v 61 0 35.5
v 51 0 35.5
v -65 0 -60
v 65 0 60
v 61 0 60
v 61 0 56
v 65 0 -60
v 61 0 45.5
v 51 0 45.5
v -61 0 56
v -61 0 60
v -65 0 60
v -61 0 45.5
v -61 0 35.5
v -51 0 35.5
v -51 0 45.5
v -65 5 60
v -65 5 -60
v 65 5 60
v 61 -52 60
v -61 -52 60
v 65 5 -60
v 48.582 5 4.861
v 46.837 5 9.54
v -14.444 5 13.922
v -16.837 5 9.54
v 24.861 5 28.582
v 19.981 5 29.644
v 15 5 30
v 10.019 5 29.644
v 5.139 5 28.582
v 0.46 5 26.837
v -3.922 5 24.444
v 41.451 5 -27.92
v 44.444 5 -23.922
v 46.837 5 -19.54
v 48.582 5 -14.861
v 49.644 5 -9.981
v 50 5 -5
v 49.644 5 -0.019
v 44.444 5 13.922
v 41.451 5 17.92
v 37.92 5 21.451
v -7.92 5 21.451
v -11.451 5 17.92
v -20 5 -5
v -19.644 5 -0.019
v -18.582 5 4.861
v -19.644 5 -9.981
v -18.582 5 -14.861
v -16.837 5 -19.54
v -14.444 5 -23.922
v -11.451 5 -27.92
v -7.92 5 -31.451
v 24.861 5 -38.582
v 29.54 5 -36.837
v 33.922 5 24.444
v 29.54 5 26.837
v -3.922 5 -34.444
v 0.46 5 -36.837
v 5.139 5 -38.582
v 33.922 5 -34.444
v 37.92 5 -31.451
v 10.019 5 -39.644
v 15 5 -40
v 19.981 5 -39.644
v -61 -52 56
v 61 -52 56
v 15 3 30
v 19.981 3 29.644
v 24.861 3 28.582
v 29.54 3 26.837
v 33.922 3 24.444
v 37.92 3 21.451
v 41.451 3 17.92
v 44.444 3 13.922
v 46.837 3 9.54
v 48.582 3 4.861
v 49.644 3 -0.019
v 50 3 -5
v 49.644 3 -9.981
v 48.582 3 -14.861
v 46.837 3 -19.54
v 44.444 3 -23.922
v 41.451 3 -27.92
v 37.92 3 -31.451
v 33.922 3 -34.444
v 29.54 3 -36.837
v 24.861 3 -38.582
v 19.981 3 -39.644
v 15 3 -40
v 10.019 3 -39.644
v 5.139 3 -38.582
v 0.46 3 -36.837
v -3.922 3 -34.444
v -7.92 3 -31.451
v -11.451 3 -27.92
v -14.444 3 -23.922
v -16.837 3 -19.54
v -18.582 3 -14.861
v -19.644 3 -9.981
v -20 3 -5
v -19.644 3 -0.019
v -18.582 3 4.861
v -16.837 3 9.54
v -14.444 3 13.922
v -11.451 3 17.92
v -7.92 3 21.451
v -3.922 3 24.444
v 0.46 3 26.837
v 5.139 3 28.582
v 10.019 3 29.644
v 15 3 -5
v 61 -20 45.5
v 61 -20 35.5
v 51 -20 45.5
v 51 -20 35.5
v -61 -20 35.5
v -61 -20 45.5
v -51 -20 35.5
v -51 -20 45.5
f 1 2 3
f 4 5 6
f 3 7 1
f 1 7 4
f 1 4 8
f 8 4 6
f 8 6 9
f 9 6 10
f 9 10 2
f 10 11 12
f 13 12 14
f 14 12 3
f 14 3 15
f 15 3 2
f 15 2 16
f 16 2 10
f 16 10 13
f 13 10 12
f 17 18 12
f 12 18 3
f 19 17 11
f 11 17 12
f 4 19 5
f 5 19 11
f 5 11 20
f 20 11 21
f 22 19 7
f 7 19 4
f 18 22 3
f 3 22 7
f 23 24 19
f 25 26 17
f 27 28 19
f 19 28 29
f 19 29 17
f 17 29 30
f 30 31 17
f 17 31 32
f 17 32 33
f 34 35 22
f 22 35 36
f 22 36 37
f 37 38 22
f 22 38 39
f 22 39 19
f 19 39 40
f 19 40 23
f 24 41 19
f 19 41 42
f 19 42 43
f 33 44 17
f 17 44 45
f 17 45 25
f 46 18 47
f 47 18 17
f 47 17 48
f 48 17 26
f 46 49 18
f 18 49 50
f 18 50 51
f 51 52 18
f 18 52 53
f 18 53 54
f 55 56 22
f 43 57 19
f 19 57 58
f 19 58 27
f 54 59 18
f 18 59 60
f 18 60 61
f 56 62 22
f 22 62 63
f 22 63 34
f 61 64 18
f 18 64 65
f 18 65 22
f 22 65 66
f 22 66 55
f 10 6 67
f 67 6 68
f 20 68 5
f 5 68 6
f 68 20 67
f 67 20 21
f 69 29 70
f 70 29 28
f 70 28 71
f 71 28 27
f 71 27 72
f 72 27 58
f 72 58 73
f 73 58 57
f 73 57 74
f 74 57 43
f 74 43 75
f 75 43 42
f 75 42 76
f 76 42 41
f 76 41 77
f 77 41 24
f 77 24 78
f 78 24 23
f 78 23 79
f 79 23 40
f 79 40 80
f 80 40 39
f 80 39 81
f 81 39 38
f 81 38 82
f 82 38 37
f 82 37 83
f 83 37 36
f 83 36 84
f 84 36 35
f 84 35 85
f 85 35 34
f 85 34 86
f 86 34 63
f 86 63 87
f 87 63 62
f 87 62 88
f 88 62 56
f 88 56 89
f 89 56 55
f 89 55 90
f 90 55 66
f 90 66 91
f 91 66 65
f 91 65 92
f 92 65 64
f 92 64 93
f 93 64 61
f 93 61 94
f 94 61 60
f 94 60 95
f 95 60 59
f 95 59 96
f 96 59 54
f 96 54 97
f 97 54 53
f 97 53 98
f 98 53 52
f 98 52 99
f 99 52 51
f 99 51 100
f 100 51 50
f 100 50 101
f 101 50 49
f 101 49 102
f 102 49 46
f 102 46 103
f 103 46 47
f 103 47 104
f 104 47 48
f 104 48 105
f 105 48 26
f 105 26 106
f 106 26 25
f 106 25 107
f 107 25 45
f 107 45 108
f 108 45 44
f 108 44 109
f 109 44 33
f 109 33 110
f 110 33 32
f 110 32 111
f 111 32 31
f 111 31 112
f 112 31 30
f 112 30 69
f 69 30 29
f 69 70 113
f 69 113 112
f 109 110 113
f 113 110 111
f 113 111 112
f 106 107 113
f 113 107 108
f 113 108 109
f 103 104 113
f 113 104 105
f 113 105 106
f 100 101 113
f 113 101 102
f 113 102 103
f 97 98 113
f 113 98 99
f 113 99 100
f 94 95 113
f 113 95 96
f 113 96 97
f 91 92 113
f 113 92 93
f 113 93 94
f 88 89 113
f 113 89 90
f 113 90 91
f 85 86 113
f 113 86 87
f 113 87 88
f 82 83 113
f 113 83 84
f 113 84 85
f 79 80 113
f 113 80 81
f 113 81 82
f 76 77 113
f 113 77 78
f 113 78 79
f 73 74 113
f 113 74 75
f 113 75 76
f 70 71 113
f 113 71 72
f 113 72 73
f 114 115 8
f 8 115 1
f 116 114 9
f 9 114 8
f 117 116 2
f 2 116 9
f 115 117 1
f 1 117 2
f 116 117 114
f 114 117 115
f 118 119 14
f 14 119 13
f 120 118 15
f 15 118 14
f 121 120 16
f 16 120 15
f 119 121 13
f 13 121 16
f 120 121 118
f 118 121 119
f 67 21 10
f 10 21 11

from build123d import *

# Parameters (mm, degrees)
SKETCH2_W           = 130
SKETCH2_H           = 120
BOSS_EXTRUDE1_DEPTH = 5
SKETCH3_W           = 126
SKETCH3_H           = 4
BOSS_EXTRUDE2_DEPTH = 52
SKETCH5_R           = 35
CUT_EXTRUDE1_DEPTH  = 2
SKETCH7_W           = 10
SKETCH7_H           = 10
BOSS_EXTRUDE3_DEPTH = 20
SKETCH9_W           = 4
SKETCH9_H           = 52
CUT_EXTRUDE2_DEPTH  = 5


with BuildPart() as part:
    # Sketch2 → Boss-Extrude1 (new body)
    with BuildSketch(Plane(origin=(0, 0, 0), x_dir=(1, 0, 0), z_dir=(0, 1, 0))):
        Rectangle(SKETCH2_W, SKETCH2_H)
    extrude(amount=BOSS_EXTRUDE1_DEPTH)

    # Sketch3 → Boss-Extrude2 (add)
    with BuildSketch(Plane.XZ):
        with Locations((-2, 58)):
            Rectangle(SKETCH3_W, SKETCH3_H)
    extrude(amount=BOSS_EXTRUDE2_DEPTH)

    # Sketch5 → Cut-Extrude1 (cut)
    with BuildSketch(Plane(origin=(0, 5, 0), x_dir=(1, 0, 0), z_dir=(0, 1, 0))):
        with Locations(Location((15, 5, 0), (0, 0, 270))):
            Circle(SKETCH5_R)
    extrude(amount=-CUT_EXTRUDE1_DEPTH, mode=Mode.SUBTRACT)

    # Sketch7 → Boss-Extrude3 (add)
    with BuildSketch(Plane.XZ):
        with Locations((-56, 40.5)):
            Rectangle(SKETCH7_W, SKETCH7_H)
        with Locations((56, 40.5)):
            Rectangle(SKETCH7_W, SKETCH7_H)
    extrude(amount=BOSS_EXTRUDE3_DEPTH)

    # Sketch9 → Cut-Extrude2 (cut)
    with BuildSketch(Plane(origin=(0, 0, 56), x_dir=(-1, 0, 0), z_dir=(0, 0, -1))):
        with Locations((63, -26)):
            Rectangle(SKETCH9_W, SKETCH9_H)
    extrude(amount=-CUT_EXTRUDE2_DEPTH, mode=Mode.SUBTRACT)


solid = part.part
